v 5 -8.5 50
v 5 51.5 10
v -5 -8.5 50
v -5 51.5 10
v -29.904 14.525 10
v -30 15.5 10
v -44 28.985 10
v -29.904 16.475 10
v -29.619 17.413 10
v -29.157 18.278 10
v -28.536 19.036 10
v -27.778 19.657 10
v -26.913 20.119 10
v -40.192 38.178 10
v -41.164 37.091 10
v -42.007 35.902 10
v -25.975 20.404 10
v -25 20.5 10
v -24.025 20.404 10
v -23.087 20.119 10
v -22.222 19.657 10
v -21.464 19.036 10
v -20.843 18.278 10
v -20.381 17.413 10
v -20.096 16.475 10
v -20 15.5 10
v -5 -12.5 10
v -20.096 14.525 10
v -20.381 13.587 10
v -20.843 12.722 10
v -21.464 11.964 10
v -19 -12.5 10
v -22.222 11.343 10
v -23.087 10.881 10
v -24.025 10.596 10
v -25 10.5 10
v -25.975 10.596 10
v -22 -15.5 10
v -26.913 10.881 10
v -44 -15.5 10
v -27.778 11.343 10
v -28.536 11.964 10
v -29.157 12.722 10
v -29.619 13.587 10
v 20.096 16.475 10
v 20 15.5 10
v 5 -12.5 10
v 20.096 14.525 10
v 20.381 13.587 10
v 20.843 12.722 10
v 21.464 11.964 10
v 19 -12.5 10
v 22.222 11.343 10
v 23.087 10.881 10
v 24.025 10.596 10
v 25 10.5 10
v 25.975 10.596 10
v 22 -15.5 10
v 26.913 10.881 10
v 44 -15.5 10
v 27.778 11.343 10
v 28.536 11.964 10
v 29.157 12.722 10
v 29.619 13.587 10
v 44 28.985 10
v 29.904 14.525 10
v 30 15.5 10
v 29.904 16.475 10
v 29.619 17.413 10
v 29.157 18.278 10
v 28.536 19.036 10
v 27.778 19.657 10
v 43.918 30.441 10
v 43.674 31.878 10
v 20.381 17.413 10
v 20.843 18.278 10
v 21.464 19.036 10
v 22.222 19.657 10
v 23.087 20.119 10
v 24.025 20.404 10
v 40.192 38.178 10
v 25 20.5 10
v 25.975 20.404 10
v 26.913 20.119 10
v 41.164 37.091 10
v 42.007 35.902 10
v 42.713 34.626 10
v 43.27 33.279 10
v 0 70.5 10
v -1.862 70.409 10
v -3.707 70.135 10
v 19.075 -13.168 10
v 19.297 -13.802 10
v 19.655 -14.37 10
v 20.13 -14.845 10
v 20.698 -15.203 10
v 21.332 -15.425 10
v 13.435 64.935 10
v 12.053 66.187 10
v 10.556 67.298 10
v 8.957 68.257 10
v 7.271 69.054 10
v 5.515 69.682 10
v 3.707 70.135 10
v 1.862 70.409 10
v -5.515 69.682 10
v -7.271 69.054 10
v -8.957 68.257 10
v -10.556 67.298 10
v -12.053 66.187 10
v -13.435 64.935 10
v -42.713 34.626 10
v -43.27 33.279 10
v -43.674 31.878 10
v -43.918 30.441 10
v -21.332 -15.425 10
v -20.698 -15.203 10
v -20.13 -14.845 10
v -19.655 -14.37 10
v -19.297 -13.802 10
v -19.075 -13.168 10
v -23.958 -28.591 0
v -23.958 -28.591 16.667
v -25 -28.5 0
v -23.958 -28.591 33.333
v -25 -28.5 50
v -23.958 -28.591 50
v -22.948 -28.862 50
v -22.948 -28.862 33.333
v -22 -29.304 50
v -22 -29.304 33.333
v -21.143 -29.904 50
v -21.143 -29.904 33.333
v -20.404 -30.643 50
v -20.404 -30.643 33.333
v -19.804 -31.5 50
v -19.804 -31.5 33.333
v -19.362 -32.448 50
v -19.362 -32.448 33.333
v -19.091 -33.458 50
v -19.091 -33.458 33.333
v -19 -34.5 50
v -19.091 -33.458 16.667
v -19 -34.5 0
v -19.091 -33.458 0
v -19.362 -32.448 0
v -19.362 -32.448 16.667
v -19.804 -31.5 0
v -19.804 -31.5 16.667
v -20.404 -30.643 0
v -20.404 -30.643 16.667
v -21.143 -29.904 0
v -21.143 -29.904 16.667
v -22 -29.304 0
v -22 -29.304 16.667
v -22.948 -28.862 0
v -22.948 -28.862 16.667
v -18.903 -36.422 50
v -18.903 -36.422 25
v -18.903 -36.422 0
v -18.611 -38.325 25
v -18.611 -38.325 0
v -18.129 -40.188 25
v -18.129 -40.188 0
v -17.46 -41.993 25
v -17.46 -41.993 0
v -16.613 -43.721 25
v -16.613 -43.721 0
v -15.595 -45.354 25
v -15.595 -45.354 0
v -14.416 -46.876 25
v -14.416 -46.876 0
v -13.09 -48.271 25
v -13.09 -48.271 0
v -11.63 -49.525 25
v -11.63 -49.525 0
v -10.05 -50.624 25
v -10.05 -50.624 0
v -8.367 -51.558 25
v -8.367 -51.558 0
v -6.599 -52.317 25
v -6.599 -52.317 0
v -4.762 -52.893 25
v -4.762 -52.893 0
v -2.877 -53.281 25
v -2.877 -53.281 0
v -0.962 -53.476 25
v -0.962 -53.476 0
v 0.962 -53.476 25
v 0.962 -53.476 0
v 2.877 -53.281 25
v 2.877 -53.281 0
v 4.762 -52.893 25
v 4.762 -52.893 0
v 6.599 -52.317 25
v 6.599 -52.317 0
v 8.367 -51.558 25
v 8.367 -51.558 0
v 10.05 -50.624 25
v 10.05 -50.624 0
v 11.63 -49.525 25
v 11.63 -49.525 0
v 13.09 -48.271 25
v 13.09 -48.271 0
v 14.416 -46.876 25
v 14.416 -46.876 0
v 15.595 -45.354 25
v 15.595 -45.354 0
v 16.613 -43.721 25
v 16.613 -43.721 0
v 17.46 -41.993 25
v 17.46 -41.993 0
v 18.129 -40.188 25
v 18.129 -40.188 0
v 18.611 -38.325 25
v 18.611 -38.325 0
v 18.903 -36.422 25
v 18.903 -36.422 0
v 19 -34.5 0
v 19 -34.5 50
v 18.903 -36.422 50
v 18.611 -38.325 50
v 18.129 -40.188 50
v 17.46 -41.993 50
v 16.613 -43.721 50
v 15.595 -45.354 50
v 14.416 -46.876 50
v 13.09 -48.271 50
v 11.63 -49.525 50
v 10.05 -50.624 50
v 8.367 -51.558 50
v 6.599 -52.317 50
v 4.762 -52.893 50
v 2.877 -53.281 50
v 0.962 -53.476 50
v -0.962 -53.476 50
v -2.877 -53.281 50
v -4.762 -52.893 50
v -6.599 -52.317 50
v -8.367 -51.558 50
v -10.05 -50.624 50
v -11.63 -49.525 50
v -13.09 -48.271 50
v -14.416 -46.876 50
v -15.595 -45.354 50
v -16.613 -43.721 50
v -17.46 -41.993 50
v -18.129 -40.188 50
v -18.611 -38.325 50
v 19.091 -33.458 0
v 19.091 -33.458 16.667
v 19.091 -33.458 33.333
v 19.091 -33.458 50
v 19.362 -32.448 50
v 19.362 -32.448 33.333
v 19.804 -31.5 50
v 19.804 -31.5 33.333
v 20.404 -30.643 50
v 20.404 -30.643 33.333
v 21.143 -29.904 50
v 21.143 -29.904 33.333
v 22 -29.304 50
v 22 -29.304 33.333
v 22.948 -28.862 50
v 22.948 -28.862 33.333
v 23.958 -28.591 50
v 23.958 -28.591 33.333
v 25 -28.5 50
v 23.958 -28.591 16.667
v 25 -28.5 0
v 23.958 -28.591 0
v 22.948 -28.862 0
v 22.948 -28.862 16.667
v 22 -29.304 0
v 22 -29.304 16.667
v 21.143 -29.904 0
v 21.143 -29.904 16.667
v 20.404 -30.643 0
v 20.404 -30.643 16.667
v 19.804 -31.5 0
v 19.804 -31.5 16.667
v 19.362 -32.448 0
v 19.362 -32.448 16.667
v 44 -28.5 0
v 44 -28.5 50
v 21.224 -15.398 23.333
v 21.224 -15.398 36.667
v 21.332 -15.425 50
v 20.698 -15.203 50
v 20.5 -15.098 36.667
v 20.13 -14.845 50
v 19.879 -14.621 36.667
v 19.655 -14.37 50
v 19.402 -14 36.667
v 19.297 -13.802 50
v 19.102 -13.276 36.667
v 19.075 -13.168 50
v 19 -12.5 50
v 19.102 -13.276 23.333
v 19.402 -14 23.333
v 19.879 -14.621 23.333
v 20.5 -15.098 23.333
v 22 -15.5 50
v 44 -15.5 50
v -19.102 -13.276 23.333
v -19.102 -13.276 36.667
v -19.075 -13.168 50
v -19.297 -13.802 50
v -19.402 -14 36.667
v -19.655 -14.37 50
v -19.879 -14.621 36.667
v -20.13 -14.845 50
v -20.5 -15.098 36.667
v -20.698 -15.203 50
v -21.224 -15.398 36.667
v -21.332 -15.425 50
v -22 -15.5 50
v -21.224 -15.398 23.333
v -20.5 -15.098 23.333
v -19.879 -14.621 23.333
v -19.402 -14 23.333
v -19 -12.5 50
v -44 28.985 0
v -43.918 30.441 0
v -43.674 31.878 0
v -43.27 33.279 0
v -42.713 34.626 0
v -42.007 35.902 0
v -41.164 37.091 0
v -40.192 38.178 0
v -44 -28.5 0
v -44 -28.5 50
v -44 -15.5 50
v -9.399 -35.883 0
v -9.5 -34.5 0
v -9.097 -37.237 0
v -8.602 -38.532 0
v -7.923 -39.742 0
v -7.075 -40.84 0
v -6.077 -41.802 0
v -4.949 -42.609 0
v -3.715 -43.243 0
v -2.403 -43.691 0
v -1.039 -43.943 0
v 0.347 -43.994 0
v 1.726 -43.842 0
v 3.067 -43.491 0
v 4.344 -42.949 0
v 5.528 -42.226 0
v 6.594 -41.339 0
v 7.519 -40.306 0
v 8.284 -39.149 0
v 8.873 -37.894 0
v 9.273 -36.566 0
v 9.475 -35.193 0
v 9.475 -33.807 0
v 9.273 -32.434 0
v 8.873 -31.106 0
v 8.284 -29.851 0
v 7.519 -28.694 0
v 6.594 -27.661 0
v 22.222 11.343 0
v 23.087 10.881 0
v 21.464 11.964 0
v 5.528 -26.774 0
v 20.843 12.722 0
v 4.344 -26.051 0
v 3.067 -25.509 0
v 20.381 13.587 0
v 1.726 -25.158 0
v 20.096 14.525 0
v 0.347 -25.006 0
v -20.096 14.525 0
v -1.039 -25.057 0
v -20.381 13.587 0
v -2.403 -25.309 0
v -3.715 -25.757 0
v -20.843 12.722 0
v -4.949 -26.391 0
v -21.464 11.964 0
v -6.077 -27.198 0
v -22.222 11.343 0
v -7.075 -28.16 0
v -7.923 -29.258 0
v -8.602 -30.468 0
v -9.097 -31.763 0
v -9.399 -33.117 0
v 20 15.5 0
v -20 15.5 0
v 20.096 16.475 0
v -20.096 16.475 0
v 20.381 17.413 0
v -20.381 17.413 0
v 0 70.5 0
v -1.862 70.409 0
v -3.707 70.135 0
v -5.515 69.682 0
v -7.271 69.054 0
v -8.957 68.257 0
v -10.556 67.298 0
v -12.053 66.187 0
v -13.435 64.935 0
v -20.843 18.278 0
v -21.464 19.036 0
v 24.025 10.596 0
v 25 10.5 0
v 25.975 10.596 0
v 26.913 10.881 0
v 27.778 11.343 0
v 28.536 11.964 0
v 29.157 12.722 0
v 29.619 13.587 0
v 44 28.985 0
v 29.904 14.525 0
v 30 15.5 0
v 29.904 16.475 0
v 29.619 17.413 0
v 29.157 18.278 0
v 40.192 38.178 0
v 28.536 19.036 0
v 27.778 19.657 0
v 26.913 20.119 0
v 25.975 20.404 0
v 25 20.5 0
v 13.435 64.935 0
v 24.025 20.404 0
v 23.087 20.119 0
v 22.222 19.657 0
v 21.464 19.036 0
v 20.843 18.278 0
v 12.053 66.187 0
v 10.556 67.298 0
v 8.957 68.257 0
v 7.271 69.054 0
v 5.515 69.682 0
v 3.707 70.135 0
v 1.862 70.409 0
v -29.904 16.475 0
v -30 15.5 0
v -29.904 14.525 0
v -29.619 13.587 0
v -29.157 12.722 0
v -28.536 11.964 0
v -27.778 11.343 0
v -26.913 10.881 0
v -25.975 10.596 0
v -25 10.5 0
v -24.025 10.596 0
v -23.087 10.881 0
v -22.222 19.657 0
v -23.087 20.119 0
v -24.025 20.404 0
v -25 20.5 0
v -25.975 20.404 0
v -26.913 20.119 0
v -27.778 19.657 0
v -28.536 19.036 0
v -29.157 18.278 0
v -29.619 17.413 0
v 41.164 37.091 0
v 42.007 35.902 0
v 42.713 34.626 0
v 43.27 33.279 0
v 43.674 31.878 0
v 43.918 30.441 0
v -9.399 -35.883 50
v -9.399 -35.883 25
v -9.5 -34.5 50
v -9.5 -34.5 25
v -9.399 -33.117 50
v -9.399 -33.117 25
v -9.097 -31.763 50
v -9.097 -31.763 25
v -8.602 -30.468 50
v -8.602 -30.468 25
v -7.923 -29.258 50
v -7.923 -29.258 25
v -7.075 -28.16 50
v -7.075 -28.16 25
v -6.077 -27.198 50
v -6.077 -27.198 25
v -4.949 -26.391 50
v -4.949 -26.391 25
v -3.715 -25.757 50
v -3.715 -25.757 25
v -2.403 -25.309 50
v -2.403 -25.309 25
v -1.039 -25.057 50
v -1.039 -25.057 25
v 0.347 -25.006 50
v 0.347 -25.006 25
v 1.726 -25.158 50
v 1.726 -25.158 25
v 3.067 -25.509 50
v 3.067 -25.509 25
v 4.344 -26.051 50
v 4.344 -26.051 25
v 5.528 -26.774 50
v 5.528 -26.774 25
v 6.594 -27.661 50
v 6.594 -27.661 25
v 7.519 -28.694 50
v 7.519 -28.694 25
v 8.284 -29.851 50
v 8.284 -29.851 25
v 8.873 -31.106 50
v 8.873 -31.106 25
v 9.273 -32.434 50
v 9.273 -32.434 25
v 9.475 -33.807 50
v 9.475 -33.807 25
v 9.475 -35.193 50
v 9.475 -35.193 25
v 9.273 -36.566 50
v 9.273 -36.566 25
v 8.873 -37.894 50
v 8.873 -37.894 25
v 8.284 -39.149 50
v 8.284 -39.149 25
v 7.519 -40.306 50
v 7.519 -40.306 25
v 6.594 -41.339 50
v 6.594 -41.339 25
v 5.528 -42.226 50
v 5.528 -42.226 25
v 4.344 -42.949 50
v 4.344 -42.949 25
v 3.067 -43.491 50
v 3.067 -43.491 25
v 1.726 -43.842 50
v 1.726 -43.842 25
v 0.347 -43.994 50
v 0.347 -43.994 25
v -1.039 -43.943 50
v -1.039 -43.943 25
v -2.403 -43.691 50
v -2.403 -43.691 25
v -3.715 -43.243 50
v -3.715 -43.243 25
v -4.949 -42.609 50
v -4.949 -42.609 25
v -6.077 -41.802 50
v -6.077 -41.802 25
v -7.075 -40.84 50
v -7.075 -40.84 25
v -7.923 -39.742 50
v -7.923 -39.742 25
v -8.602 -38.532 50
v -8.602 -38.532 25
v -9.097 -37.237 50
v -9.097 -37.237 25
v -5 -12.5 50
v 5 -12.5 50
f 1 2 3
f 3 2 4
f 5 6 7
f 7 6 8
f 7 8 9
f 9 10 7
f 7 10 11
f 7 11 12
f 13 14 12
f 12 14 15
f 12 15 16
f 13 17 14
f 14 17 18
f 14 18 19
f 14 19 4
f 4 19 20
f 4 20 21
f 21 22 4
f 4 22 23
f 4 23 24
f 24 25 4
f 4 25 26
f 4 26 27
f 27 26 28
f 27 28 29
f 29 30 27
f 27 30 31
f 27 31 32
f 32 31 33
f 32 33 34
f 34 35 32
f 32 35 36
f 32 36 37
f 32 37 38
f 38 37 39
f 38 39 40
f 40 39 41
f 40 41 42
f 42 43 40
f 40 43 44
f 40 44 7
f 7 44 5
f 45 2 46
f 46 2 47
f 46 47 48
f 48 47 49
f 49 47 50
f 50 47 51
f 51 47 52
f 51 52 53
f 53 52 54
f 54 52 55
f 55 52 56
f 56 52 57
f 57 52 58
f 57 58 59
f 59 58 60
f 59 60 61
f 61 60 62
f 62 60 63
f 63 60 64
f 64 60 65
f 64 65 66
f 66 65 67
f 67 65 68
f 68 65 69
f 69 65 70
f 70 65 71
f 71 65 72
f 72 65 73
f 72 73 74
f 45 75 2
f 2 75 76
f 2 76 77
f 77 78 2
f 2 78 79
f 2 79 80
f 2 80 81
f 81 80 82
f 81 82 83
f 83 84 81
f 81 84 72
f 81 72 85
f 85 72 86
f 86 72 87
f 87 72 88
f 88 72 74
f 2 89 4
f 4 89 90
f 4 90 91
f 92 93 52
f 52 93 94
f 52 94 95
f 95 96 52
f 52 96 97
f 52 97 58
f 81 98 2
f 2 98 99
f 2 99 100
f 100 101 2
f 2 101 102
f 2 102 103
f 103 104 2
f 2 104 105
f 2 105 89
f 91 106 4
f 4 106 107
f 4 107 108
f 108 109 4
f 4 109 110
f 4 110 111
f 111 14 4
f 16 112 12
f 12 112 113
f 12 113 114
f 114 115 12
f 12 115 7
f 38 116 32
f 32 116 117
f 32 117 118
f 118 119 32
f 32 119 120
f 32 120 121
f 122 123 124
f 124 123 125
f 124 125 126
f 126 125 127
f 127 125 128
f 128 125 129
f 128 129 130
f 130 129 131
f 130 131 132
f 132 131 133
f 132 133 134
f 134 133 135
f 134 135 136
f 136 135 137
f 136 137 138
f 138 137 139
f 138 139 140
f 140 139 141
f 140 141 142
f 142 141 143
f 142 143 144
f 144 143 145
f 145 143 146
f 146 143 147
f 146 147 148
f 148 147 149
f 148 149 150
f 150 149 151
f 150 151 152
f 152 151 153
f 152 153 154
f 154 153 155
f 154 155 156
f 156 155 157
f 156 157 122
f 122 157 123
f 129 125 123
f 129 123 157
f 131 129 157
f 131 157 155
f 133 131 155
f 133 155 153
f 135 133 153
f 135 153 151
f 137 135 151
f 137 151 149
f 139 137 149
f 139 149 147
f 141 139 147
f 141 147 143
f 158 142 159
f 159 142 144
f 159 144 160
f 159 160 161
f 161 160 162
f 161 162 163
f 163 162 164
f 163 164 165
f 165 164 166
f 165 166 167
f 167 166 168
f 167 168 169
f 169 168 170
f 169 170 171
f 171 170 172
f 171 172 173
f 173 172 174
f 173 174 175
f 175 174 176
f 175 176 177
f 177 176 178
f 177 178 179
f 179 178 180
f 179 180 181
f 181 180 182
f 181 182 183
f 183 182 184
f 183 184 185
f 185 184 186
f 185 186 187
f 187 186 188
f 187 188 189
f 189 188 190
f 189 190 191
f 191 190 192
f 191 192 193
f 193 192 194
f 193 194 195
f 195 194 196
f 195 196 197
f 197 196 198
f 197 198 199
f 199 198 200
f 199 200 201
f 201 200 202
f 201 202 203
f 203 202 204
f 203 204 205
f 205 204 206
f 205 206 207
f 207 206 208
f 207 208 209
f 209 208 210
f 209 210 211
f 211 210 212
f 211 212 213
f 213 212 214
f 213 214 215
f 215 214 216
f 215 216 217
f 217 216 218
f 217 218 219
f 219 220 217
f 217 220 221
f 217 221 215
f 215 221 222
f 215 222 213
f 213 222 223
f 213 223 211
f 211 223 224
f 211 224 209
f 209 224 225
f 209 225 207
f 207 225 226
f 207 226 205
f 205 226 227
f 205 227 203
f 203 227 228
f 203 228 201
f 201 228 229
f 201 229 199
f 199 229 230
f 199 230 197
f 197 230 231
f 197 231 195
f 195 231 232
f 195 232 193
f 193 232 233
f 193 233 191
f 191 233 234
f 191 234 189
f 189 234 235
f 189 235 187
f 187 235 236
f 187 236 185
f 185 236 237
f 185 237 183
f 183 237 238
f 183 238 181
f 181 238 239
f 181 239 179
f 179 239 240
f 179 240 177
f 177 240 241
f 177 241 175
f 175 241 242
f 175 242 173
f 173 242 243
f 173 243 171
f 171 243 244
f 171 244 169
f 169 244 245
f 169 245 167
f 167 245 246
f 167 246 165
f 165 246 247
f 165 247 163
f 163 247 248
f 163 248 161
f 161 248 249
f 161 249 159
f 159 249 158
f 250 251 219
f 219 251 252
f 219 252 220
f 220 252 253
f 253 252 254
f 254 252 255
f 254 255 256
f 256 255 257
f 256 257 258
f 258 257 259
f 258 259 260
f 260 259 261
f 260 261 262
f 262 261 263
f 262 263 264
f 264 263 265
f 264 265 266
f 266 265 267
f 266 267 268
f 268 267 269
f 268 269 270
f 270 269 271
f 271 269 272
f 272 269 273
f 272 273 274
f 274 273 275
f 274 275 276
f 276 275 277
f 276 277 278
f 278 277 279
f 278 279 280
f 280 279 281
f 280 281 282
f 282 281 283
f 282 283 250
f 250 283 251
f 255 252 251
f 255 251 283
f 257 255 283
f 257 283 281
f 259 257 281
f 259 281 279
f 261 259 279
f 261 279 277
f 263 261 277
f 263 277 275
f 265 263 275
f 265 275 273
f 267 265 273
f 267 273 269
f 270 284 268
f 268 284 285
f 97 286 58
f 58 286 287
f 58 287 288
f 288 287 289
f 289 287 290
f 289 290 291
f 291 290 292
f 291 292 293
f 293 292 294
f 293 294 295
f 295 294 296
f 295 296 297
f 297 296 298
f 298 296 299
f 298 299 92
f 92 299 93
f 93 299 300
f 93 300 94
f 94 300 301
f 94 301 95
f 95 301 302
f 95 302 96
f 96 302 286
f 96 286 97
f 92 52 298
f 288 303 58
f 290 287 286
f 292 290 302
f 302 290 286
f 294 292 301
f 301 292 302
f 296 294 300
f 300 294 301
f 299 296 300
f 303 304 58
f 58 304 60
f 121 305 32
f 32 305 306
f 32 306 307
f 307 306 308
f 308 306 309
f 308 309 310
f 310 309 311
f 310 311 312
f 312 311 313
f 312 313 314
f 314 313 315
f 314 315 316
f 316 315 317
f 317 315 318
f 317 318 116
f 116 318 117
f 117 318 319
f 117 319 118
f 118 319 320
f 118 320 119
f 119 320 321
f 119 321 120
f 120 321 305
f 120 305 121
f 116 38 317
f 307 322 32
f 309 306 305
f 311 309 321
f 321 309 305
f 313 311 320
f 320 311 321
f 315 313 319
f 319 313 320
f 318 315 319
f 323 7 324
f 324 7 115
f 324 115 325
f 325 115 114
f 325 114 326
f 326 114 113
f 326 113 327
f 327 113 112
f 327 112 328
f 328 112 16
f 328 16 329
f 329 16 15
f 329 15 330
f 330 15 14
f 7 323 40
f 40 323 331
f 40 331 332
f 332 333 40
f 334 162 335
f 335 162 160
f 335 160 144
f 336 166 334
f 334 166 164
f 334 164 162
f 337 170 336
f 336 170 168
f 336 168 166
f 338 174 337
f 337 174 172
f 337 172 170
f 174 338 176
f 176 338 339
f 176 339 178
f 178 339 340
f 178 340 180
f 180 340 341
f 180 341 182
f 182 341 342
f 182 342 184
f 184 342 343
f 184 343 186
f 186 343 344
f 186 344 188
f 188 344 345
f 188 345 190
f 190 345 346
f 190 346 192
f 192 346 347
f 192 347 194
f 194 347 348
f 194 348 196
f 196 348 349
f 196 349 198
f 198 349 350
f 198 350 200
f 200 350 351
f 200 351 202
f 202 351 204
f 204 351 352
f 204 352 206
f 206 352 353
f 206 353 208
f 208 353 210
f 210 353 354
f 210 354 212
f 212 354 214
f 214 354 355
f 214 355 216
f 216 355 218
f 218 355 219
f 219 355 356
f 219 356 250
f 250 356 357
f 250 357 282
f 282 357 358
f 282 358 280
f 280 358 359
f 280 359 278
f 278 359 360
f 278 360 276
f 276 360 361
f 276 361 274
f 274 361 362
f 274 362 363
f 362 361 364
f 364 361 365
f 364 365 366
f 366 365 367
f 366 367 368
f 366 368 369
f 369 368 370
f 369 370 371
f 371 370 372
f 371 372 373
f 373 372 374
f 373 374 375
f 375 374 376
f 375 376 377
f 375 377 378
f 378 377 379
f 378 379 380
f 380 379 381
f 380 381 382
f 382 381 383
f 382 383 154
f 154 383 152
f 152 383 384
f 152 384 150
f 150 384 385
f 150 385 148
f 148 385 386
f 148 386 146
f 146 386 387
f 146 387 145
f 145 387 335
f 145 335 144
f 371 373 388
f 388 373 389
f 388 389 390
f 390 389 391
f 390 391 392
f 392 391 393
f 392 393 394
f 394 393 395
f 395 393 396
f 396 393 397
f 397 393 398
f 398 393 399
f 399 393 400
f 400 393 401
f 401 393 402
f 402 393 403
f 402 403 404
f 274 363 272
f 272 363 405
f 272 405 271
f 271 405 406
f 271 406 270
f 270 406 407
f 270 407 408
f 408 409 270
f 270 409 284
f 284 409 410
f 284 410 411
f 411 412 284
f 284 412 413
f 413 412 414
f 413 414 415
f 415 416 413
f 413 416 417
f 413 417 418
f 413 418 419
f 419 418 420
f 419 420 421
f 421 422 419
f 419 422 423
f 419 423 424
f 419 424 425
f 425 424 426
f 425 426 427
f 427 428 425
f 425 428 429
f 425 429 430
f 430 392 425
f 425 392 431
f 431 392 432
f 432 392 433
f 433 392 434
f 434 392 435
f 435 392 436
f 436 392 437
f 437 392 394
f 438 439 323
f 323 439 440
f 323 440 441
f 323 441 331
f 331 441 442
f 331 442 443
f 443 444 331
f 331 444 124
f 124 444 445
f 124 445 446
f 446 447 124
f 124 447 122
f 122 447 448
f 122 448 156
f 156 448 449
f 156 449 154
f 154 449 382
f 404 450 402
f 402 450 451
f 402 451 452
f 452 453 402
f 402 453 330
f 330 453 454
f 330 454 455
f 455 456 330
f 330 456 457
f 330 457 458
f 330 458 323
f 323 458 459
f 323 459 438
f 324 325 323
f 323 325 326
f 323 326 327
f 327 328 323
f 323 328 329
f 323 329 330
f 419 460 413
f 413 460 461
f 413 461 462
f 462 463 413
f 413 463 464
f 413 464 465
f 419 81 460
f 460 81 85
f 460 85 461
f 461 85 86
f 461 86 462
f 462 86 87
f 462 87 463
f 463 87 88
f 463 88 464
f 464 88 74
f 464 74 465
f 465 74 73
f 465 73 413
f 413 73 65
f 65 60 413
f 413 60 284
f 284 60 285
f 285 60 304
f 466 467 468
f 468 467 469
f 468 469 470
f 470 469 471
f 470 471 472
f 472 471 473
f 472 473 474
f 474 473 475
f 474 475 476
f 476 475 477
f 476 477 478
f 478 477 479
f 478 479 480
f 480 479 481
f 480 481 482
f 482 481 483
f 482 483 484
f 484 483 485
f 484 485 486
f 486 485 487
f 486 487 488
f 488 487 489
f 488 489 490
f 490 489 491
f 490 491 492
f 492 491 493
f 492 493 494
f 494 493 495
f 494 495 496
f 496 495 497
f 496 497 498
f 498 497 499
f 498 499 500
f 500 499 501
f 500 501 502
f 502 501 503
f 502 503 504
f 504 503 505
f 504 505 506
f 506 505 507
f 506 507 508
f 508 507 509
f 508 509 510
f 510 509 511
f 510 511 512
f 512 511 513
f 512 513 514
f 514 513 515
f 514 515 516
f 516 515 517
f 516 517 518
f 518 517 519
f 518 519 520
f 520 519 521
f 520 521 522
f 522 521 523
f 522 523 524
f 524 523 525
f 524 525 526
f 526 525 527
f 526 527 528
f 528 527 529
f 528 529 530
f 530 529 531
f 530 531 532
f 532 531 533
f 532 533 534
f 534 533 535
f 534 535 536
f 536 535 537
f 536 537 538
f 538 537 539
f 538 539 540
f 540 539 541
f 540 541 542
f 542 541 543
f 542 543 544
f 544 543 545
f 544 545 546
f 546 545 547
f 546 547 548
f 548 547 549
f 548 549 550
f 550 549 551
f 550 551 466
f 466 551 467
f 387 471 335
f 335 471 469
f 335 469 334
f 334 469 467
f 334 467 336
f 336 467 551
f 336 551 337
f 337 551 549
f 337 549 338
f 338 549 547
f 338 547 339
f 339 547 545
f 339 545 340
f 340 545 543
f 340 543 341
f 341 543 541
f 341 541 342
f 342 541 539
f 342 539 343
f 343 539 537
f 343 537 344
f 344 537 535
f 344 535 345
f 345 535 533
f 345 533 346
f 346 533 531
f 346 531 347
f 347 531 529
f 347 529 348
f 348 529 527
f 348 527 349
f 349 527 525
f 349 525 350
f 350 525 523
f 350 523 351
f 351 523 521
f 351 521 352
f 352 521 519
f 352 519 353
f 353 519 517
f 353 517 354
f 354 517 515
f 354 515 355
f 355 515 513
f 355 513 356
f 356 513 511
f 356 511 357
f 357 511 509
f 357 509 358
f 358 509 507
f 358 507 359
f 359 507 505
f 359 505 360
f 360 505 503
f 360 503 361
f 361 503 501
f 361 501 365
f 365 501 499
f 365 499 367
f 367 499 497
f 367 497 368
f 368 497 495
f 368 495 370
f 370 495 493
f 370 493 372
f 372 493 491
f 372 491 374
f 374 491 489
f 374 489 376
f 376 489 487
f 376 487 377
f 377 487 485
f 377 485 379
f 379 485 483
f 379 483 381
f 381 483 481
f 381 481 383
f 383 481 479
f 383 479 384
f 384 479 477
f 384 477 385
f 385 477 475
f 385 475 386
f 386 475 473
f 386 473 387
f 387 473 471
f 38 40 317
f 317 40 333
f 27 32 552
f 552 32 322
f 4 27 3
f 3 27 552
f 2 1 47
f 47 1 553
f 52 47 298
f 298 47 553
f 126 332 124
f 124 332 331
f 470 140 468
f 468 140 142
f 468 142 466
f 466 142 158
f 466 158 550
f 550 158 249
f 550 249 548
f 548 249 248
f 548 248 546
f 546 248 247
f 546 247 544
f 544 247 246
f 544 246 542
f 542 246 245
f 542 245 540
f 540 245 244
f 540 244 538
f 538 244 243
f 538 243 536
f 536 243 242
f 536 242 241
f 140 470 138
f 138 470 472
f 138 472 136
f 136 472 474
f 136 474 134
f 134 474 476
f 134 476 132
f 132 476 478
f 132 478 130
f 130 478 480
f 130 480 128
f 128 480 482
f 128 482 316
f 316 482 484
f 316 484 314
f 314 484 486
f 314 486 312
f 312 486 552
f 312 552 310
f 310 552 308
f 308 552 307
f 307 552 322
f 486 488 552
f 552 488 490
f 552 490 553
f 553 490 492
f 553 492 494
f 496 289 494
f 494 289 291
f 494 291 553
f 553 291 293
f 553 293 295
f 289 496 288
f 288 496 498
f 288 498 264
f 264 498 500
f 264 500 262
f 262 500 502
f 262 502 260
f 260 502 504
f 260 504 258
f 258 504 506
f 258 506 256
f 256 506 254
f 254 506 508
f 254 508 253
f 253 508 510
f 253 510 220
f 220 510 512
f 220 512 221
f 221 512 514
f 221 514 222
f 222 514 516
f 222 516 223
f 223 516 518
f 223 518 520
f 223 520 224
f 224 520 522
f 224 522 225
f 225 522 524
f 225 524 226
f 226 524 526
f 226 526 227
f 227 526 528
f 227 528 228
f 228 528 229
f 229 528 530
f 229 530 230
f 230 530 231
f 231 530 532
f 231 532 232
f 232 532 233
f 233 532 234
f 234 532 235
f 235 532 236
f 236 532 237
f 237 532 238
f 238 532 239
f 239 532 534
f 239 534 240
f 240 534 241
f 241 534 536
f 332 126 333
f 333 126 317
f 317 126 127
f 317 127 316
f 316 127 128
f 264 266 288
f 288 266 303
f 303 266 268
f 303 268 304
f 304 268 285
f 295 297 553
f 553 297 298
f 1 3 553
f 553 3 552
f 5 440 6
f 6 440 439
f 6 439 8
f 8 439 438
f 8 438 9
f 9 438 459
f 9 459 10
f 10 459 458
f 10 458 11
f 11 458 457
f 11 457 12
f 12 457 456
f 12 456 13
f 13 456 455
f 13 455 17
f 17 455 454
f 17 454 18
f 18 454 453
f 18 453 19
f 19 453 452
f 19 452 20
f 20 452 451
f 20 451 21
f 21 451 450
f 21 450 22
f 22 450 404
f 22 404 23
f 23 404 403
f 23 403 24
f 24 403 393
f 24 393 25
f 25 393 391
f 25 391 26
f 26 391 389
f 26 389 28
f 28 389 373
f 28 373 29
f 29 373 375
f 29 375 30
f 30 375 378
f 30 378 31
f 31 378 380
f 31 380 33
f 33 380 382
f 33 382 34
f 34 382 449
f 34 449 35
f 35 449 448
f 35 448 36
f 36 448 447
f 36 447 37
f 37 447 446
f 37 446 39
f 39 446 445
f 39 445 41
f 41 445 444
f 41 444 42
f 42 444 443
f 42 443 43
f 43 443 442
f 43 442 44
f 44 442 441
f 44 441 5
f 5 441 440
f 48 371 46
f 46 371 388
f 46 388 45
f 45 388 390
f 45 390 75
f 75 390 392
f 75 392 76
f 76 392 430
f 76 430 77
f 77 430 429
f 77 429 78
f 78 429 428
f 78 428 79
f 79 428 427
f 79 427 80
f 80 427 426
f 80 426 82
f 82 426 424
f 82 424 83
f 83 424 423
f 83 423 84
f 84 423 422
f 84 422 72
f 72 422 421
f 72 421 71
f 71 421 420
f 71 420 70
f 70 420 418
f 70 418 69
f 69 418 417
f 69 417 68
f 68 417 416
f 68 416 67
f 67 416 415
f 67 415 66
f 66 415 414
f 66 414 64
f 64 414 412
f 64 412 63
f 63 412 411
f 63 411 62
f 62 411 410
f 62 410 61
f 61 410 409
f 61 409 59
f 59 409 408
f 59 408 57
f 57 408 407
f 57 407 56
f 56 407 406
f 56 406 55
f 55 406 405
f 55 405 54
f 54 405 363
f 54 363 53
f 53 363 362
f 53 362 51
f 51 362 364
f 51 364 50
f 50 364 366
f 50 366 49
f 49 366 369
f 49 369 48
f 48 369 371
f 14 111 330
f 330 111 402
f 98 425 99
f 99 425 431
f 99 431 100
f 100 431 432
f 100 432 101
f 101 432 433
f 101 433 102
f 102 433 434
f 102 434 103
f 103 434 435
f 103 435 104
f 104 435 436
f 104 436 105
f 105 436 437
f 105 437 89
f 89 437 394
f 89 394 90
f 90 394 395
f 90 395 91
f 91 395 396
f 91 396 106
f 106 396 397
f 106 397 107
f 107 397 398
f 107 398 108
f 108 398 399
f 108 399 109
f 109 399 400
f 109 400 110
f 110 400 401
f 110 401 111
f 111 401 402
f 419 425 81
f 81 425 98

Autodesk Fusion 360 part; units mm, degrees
sketch "base sketch" plane through (0, 0, 0) normal (0, 0, 1) x (1, 0, 0)
  line L0 (-44, 15.5) -> (44, 15.5)
  line L1 (44, 15.5) -> (44, -15.5)
  line L2 (44, -15.5) -> (-44, -15.5)
  line L3 (-44, -15.5) -> (-44, 15.5)
  line L4 (-44, 15.5) -> (-44, 34.3701)
  line L5 (44, 15.5) -> (44, 34.3701)
  line L6 (-26.8701, 51.5) -> (26.8701, 51.5)
  line L7 (0, -15.5) -> (0, 51.5)
  line L8 (-19, -12.5) -> (-19, -15.5)
  line L9 (19, -12.5) -> (19, -15.5)
  line L10 (-19, -12.5) -> (19, -12.5)
  line L11 (-5, -12.5) -> (-5, -8.5)
  line L12 (5, -12.5) -> (5, -8.5)
  line L13 (-5, -8.5) -> (5, -8.5)
  circle A0 centre (-25, 15.5) radius 5
  circle A1 centre (25, 15.5) radius 5
  circle A2 centre (0, 51.5) radius 19
  line L14 (0, 51.5) -> (13.435, 64.935)
  line L15 (0, 51.5) -> (19, 51.5) construction
  line L16 (0, 51.5) -> (-13.435, 64.935)
  line L17 (-13.435, 64.935) -> (-44, 34.3701)
  line L18 (13.435, 64.935) -> (44, 34.3701)
  line L19 (-44, -15.5) -> (44, -15.5)
  line L20 (44, -15.5) -> (44, -28.5)
  line L21 (-44, -28.5) -> (-44, -15.5)
  circle A3 centre (0, -34.5) radius 9.5
  circle A4 centre (0, -34.5) radius 19
  line L22 (44, -28.5) -> (18.0278, -28.5)
  line L23 (-18.0278, -28.5) -> (-44, -28.5)
  line L24 (-44, -28.5) -> (-18.0278, -28.5)
  line L25 (18.0278, -28.5) -> (44, -28.5)
  dimension "d2" = 31
  dimension "d10" = 38
  dimension "d11" = 25
  dimension "d12" = 4
  dimension "d13" = 4
  dimension "d14" = 39
  dimension "d15" = 10
  dimension "d16" = 10
  dimension "d17" = 10
  dimension "d18" = 50
  dimension "d19" = 19
  dimension "d20" = 38
  dimension "d21" = 45
  dimension "d27" = 13
  dimension "d30" = 19
  dimension "d31" = 38
extrude "Extrude1" add sketch "base sketch" along normal blind 10 contours L0 L5 L6 L7 A1 A2 L18 | L0 L1 L2 L7 L9 L10 L12 L13 A1 L19 | L0 L2 L3 L7 L8 L10 L11 L13 A0 L19 | L0 L4 L6 L7 A0 A2 L17 | L6 A2 L18 | L6 L7 A2 | L6 L7 A2 | L6 A2 L14 | A2 L14 L16 | L6 A2 L16 | L6 A2 L17 makes body 1
extrude "Extrude2" add sketch "base sketch" along normal blind 50 contours L2 L19 L20 A4 L22 L25 | L2 L7 L9 L10 L19 | L7 L10 L12 L13 | L7 L10 L11 L13 | L2 L19 L21 A4 L23 L24 | L2 L7 L8 L10 L19 | A4 bodies 1
fillet "Fillet1" radius 13 1 edges at (44, 34.3701, 5) on bodies 1
fillet "Fillet2" radius 13 1 edges at (-44, 34.3701, 5) on bodies 1
fillet "Fillet3" radius 3 1 edges at (-19, -15.5, 30) on bodies 1
fillet "Fillet4" radius 3 1 edges at (19, -15.5, 30) on bodies 1
fillet "Fillet5" radius 6 1 edges at (18.0278, -28.5, 25) on bodies 1
fillet "Fillet6" radius 6 1 edges at (-18.0278, -28.5, 25) on bodies 1
sketch "slope sketch" plane through (0, 0, 0) normal (1, 0, 0) x (0, 1, 0)
  line L0 (-8.5, 0) -> (51.5, 0)
  line L1 (-8.5, 0) -> (-8.5, 10)
  line L2 (-8.5, 10) -> (51.5, 10)
  line L3 (51.5, 10) -> (51.5, 0)
  line L4 (-8.5, 10) -> (-8.5, 50)
  line L5 (-8.5, 50) -> (51.5, 10)
  dimension "d48" = 60
  dimension "d49" = 40
extrude "Extrude3" add sketch "slope sketch" along normal mid plane 10 contours L2 L4 L5 bodies 1
copy_body "Body->Comp1" bodies 1 removing the originals makes body 2 in component "object A3"
component "object A3" placed x (1, 0, 0) y (0, 1, 0) z (0, 0, 1) at (0, 0, 0)
